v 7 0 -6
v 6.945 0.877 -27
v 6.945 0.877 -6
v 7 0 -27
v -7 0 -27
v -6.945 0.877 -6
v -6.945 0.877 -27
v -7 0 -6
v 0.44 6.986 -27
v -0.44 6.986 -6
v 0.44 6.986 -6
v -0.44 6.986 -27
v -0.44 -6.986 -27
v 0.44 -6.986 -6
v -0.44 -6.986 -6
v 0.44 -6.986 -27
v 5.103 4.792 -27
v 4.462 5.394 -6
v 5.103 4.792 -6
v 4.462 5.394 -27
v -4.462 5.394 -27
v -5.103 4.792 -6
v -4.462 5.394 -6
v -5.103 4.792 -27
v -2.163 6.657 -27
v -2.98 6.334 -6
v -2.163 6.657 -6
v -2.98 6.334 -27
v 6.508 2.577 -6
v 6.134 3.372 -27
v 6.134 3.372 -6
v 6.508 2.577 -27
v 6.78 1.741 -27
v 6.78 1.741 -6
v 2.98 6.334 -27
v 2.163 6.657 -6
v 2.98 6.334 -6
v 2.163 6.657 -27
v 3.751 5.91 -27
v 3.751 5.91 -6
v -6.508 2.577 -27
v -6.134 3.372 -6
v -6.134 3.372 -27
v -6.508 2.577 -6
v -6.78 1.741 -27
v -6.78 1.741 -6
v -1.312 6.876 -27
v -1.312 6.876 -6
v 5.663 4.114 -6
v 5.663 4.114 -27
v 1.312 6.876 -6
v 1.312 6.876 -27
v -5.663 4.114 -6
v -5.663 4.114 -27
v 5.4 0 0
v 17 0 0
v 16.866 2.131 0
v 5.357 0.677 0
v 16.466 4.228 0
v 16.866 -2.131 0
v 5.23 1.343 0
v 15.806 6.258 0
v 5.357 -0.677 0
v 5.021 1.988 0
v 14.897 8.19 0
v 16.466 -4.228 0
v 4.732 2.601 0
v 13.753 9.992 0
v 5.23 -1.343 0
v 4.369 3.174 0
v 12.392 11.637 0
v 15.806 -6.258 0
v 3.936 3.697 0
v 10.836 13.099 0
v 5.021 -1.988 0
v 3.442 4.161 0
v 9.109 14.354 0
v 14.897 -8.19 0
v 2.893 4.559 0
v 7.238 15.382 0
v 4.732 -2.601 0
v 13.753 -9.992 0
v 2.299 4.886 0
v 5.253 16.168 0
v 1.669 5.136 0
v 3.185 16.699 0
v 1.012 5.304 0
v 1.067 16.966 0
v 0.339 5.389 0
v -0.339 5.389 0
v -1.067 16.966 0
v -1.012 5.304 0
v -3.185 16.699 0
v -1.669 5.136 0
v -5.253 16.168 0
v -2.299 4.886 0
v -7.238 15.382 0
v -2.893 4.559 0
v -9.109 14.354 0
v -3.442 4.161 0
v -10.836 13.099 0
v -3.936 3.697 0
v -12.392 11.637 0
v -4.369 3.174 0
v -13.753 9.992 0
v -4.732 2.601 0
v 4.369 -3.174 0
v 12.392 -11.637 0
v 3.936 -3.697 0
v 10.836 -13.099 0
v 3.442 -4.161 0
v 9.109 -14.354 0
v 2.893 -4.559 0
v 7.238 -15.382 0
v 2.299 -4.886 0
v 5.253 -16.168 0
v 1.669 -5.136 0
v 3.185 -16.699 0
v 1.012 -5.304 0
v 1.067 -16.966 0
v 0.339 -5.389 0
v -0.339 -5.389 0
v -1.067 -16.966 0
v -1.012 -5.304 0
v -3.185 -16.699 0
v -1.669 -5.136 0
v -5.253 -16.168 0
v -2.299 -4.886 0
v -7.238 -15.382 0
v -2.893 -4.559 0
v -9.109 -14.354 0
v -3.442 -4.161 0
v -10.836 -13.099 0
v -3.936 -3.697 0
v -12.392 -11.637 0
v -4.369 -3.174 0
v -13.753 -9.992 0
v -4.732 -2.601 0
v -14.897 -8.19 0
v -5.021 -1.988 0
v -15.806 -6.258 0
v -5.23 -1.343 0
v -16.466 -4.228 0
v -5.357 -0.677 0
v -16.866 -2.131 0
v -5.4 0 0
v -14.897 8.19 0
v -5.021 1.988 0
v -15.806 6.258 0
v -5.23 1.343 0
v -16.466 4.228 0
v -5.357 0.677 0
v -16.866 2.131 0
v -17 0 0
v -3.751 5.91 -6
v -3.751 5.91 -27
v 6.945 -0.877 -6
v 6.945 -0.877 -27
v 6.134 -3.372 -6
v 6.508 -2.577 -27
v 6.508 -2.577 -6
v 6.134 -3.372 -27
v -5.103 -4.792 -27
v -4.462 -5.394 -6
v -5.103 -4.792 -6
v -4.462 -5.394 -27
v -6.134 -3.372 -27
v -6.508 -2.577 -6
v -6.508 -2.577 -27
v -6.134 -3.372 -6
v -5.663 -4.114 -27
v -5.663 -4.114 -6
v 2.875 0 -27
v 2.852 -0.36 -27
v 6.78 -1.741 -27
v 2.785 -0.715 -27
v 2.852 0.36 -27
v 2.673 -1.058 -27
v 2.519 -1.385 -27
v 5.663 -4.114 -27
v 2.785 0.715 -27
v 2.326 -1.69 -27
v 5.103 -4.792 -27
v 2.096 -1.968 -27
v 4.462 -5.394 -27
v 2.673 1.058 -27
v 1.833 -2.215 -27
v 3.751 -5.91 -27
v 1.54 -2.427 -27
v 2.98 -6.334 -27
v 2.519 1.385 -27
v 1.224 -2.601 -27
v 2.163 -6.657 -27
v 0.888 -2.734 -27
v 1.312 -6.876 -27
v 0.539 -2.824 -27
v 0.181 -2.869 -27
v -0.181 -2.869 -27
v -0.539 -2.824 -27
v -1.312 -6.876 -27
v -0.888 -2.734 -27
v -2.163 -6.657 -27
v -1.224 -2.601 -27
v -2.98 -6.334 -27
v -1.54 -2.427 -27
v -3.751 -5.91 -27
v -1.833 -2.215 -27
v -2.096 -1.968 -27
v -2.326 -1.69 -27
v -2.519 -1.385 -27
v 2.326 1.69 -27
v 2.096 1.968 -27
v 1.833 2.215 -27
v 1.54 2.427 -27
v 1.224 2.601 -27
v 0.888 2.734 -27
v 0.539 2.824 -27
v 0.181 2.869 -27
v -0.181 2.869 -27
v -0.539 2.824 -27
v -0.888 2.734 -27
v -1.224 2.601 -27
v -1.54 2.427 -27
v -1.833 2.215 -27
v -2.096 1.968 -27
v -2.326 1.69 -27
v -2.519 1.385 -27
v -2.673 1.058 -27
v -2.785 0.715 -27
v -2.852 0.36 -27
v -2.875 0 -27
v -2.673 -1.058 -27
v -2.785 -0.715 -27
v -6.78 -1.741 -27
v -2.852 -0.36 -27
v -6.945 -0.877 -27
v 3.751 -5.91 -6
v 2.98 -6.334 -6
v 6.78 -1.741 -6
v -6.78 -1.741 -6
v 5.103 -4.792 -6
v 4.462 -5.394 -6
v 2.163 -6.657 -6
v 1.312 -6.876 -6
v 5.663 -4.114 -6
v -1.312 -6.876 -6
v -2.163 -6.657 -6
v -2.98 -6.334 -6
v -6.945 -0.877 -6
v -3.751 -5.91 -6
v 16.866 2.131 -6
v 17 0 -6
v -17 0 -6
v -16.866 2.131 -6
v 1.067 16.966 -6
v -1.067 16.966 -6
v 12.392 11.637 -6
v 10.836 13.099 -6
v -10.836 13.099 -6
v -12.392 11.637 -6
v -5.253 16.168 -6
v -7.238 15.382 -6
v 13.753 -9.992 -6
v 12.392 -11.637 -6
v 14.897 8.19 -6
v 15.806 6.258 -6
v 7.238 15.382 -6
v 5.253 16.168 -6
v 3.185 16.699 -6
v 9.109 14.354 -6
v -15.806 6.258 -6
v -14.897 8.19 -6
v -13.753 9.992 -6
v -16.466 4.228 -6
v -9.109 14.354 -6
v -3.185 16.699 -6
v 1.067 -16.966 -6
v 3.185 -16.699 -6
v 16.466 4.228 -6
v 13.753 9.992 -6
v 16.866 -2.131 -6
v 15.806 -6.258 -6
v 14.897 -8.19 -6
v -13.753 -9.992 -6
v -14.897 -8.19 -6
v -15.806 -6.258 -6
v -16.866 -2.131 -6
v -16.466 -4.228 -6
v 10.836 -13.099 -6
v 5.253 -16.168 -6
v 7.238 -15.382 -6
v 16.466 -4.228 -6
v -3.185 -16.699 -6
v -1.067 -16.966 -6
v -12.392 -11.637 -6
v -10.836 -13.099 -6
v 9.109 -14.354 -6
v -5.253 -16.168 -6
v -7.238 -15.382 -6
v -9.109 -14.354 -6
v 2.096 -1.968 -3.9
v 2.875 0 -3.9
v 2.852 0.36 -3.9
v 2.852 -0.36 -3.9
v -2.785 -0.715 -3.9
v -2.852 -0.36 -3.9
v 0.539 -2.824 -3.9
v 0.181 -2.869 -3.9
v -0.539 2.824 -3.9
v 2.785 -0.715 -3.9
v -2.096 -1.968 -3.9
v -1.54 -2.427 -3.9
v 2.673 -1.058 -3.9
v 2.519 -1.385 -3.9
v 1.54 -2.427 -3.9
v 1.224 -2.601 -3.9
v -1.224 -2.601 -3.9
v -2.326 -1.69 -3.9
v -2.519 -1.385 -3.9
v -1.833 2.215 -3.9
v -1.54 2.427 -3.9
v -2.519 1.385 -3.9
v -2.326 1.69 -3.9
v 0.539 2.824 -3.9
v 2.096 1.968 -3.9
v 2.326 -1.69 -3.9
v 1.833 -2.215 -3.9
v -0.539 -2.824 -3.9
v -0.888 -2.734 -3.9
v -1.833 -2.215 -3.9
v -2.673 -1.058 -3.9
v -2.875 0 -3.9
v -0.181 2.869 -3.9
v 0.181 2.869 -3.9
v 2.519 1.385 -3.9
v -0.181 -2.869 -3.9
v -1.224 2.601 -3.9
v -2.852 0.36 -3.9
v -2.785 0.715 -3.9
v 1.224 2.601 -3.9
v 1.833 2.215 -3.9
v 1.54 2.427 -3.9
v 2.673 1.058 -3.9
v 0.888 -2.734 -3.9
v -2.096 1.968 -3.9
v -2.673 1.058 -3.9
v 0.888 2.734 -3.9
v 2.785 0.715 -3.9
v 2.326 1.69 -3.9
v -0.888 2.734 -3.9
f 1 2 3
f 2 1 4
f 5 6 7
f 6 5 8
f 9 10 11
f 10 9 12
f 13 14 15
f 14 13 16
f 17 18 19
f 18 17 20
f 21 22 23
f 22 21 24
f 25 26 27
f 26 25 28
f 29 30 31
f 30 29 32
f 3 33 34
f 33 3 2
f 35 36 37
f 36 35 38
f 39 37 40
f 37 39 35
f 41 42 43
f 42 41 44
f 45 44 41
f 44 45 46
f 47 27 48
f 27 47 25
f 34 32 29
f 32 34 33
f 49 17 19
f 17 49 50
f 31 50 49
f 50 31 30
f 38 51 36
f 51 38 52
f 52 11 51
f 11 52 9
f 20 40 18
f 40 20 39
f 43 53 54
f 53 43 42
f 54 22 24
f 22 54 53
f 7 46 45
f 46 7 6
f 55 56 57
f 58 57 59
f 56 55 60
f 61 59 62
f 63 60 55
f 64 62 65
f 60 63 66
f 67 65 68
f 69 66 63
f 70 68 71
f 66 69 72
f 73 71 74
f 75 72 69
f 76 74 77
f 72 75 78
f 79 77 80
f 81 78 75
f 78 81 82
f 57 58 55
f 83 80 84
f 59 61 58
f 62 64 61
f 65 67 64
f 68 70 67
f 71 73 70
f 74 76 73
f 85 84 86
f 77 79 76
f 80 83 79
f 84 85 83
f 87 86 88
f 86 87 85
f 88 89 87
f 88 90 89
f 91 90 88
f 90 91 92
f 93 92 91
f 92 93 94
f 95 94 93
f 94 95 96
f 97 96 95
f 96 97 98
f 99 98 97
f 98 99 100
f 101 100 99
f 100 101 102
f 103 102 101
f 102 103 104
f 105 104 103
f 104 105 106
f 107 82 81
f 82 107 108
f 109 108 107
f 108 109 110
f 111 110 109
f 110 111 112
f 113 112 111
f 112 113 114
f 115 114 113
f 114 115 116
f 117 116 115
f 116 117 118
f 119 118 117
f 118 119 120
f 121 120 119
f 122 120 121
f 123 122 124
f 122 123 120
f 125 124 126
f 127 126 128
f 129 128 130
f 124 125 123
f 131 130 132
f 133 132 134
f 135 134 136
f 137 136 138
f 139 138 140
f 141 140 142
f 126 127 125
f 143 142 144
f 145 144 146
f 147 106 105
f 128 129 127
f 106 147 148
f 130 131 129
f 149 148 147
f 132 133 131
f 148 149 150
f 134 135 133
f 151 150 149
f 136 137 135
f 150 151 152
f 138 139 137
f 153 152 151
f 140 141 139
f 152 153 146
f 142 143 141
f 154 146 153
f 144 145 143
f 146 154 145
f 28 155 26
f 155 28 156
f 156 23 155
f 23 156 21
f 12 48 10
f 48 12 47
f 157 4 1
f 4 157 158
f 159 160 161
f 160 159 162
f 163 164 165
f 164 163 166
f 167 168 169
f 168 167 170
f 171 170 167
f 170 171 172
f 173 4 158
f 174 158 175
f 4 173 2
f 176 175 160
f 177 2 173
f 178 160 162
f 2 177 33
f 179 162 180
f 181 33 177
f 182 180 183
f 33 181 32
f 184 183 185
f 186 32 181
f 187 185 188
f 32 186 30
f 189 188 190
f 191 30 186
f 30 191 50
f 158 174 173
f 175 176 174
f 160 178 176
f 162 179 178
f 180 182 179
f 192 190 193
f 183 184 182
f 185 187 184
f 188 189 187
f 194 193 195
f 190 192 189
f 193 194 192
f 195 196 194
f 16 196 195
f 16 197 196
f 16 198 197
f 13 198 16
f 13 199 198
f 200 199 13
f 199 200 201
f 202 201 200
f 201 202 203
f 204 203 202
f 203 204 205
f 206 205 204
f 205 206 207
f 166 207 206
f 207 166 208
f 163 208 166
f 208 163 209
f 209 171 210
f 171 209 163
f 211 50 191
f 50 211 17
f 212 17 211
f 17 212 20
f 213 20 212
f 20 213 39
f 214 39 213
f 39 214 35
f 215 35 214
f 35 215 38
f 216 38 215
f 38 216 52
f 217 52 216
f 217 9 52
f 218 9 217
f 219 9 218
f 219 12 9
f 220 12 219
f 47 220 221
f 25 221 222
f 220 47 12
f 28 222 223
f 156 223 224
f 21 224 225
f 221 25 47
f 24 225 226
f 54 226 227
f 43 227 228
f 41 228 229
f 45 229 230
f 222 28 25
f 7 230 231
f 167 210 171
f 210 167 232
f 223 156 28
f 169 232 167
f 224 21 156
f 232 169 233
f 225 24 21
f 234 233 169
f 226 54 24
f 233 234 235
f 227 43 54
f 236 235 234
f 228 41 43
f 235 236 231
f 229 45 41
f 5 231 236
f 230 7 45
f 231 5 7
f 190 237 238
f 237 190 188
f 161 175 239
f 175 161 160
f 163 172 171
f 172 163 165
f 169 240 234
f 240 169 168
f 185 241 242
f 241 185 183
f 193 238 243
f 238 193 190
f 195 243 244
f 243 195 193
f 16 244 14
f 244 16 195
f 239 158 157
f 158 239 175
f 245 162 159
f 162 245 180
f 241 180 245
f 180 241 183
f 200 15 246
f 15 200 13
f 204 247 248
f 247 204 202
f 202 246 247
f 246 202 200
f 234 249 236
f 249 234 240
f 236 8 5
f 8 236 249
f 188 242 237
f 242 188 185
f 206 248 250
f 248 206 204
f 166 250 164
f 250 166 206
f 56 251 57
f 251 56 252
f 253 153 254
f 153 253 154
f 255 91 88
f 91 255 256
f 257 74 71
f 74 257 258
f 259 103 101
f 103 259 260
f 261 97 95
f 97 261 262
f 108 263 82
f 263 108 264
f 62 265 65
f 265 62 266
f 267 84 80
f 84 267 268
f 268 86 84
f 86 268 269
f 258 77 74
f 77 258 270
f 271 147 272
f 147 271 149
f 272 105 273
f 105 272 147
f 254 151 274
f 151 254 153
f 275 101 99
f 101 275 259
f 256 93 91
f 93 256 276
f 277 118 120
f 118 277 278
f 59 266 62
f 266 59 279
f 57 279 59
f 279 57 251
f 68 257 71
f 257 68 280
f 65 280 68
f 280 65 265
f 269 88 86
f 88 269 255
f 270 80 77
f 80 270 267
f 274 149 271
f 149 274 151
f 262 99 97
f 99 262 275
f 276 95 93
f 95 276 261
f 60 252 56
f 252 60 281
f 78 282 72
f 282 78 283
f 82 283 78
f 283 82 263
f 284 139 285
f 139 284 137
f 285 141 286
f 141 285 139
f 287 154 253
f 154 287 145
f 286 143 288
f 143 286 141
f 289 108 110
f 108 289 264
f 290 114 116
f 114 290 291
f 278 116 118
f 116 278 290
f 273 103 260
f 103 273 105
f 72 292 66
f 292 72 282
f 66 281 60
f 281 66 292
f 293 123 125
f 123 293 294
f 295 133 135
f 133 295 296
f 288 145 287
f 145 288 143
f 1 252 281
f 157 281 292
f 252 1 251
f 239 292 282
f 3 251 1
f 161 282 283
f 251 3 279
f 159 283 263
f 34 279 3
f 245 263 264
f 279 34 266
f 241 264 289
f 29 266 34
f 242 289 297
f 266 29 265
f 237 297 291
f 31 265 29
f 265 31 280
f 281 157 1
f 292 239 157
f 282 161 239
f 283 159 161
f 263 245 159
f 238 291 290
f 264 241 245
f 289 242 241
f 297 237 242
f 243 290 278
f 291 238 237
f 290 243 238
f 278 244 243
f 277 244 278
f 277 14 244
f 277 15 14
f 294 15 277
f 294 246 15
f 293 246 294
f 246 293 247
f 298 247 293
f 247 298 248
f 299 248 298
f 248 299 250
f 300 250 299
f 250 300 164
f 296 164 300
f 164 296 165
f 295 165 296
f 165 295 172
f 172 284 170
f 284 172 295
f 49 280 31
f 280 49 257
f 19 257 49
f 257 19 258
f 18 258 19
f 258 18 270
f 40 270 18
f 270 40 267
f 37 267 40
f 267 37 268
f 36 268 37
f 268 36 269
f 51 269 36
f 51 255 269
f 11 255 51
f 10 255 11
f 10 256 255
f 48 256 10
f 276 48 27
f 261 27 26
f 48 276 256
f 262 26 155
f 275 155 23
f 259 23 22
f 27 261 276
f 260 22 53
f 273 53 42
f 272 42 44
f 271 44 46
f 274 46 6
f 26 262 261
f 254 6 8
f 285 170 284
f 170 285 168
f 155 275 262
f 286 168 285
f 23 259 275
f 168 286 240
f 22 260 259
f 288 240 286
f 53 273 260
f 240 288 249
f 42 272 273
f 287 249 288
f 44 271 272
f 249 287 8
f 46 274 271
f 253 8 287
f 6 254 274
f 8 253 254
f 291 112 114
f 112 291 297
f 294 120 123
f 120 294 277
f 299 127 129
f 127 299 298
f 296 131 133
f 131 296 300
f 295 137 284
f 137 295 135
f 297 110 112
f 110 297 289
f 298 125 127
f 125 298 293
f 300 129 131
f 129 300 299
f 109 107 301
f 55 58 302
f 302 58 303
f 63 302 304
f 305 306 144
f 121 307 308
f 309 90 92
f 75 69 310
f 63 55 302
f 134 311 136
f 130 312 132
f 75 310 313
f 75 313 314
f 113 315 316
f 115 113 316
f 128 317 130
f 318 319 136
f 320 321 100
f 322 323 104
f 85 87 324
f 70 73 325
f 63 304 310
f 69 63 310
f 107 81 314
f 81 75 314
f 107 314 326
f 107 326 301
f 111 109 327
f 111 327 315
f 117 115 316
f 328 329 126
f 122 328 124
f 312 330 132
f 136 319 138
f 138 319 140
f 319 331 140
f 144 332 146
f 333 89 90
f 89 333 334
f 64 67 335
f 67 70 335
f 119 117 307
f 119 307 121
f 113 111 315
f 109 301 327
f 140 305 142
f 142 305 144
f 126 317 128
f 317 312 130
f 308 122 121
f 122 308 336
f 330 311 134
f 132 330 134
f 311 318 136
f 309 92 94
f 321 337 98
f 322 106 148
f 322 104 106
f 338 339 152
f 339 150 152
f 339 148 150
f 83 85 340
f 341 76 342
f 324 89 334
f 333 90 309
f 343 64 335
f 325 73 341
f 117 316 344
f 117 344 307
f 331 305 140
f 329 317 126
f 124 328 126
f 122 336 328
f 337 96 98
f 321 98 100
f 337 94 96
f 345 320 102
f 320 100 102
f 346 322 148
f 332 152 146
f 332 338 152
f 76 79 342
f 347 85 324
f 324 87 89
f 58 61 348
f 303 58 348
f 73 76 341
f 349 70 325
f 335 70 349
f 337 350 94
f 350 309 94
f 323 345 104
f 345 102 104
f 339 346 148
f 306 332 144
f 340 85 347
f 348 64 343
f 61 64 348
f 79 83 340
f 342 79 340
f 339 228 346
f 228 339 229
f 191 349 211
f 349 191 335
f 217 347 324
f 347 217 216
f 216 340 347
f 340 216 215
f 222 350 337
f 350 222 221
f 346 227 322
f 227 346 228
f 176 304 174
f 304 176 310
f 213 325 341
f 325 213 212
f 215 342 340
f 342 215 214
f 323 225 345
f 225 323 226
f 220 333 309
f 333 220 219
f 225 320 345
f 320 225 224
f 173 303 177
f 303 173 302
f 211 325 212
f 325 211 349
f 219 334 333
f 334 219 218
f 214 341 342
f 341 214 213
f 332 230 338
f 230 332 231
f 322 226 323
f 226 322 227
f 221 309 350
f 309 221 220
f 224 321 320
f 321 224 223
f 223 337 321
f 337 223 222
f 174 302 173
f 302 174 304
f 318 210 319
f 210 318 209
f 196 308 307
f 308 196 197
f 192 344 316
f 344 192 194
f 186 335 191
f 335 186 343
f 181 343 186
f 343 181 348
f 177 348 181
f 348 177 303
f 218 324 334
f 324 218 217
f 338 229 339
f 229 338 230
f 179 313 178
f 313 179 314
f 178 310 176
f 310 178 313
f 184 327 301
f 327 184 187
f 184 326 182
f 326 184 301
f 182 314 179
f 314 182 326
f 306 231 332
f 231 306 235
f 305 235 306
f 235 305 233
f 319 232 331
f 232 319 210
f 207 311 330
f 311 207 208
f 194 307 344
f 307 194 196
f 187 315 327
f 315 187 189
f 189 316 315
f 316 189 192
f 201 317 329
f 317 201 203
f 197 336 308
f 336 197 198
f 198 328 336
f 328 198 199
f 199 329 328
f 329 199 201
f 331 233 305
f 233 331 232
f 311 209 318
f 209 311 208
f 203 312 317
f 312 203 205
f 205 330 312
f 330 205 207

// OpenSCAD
$fn = 50;


difference() {
	union() {
		translate(v = [0, 0, -27.0000000000]) {
			cylinder(h = 27, r = 7.0000000000);
		}
		translate(v = [0, 0, -6.0000000000]) {
			cylinder(h = 6, r = 17.0000000000);
		}
	}
	union() {
		translate(v = [0, 0, 0]) {
			rotate(a = [0, 0, 0]) {
				difference() {
					union() {
						#translate(v = [0, 0, -27.0000000000]) {
							cylinder(h = 27, r = 2.6000000000);
						}
						#translate(v = [0, 0, -3.9000000000]) {
							cylinder(h = 3.9000000000, r = 7.0000000000, r1 = 2.8750000000, r2 = 5.4000000000);
						}
						#translate(v = [0, 0, -27.0000000000]) {
							cylinder(h = 27, r = 2.8750000000);
						}
						#translate(v = [0, 0, -27.0000000000]) {
							cylinder(h = 27, r = 2.6000000000);
						}
					}
					union();
				}
			}
		}
	}
}
